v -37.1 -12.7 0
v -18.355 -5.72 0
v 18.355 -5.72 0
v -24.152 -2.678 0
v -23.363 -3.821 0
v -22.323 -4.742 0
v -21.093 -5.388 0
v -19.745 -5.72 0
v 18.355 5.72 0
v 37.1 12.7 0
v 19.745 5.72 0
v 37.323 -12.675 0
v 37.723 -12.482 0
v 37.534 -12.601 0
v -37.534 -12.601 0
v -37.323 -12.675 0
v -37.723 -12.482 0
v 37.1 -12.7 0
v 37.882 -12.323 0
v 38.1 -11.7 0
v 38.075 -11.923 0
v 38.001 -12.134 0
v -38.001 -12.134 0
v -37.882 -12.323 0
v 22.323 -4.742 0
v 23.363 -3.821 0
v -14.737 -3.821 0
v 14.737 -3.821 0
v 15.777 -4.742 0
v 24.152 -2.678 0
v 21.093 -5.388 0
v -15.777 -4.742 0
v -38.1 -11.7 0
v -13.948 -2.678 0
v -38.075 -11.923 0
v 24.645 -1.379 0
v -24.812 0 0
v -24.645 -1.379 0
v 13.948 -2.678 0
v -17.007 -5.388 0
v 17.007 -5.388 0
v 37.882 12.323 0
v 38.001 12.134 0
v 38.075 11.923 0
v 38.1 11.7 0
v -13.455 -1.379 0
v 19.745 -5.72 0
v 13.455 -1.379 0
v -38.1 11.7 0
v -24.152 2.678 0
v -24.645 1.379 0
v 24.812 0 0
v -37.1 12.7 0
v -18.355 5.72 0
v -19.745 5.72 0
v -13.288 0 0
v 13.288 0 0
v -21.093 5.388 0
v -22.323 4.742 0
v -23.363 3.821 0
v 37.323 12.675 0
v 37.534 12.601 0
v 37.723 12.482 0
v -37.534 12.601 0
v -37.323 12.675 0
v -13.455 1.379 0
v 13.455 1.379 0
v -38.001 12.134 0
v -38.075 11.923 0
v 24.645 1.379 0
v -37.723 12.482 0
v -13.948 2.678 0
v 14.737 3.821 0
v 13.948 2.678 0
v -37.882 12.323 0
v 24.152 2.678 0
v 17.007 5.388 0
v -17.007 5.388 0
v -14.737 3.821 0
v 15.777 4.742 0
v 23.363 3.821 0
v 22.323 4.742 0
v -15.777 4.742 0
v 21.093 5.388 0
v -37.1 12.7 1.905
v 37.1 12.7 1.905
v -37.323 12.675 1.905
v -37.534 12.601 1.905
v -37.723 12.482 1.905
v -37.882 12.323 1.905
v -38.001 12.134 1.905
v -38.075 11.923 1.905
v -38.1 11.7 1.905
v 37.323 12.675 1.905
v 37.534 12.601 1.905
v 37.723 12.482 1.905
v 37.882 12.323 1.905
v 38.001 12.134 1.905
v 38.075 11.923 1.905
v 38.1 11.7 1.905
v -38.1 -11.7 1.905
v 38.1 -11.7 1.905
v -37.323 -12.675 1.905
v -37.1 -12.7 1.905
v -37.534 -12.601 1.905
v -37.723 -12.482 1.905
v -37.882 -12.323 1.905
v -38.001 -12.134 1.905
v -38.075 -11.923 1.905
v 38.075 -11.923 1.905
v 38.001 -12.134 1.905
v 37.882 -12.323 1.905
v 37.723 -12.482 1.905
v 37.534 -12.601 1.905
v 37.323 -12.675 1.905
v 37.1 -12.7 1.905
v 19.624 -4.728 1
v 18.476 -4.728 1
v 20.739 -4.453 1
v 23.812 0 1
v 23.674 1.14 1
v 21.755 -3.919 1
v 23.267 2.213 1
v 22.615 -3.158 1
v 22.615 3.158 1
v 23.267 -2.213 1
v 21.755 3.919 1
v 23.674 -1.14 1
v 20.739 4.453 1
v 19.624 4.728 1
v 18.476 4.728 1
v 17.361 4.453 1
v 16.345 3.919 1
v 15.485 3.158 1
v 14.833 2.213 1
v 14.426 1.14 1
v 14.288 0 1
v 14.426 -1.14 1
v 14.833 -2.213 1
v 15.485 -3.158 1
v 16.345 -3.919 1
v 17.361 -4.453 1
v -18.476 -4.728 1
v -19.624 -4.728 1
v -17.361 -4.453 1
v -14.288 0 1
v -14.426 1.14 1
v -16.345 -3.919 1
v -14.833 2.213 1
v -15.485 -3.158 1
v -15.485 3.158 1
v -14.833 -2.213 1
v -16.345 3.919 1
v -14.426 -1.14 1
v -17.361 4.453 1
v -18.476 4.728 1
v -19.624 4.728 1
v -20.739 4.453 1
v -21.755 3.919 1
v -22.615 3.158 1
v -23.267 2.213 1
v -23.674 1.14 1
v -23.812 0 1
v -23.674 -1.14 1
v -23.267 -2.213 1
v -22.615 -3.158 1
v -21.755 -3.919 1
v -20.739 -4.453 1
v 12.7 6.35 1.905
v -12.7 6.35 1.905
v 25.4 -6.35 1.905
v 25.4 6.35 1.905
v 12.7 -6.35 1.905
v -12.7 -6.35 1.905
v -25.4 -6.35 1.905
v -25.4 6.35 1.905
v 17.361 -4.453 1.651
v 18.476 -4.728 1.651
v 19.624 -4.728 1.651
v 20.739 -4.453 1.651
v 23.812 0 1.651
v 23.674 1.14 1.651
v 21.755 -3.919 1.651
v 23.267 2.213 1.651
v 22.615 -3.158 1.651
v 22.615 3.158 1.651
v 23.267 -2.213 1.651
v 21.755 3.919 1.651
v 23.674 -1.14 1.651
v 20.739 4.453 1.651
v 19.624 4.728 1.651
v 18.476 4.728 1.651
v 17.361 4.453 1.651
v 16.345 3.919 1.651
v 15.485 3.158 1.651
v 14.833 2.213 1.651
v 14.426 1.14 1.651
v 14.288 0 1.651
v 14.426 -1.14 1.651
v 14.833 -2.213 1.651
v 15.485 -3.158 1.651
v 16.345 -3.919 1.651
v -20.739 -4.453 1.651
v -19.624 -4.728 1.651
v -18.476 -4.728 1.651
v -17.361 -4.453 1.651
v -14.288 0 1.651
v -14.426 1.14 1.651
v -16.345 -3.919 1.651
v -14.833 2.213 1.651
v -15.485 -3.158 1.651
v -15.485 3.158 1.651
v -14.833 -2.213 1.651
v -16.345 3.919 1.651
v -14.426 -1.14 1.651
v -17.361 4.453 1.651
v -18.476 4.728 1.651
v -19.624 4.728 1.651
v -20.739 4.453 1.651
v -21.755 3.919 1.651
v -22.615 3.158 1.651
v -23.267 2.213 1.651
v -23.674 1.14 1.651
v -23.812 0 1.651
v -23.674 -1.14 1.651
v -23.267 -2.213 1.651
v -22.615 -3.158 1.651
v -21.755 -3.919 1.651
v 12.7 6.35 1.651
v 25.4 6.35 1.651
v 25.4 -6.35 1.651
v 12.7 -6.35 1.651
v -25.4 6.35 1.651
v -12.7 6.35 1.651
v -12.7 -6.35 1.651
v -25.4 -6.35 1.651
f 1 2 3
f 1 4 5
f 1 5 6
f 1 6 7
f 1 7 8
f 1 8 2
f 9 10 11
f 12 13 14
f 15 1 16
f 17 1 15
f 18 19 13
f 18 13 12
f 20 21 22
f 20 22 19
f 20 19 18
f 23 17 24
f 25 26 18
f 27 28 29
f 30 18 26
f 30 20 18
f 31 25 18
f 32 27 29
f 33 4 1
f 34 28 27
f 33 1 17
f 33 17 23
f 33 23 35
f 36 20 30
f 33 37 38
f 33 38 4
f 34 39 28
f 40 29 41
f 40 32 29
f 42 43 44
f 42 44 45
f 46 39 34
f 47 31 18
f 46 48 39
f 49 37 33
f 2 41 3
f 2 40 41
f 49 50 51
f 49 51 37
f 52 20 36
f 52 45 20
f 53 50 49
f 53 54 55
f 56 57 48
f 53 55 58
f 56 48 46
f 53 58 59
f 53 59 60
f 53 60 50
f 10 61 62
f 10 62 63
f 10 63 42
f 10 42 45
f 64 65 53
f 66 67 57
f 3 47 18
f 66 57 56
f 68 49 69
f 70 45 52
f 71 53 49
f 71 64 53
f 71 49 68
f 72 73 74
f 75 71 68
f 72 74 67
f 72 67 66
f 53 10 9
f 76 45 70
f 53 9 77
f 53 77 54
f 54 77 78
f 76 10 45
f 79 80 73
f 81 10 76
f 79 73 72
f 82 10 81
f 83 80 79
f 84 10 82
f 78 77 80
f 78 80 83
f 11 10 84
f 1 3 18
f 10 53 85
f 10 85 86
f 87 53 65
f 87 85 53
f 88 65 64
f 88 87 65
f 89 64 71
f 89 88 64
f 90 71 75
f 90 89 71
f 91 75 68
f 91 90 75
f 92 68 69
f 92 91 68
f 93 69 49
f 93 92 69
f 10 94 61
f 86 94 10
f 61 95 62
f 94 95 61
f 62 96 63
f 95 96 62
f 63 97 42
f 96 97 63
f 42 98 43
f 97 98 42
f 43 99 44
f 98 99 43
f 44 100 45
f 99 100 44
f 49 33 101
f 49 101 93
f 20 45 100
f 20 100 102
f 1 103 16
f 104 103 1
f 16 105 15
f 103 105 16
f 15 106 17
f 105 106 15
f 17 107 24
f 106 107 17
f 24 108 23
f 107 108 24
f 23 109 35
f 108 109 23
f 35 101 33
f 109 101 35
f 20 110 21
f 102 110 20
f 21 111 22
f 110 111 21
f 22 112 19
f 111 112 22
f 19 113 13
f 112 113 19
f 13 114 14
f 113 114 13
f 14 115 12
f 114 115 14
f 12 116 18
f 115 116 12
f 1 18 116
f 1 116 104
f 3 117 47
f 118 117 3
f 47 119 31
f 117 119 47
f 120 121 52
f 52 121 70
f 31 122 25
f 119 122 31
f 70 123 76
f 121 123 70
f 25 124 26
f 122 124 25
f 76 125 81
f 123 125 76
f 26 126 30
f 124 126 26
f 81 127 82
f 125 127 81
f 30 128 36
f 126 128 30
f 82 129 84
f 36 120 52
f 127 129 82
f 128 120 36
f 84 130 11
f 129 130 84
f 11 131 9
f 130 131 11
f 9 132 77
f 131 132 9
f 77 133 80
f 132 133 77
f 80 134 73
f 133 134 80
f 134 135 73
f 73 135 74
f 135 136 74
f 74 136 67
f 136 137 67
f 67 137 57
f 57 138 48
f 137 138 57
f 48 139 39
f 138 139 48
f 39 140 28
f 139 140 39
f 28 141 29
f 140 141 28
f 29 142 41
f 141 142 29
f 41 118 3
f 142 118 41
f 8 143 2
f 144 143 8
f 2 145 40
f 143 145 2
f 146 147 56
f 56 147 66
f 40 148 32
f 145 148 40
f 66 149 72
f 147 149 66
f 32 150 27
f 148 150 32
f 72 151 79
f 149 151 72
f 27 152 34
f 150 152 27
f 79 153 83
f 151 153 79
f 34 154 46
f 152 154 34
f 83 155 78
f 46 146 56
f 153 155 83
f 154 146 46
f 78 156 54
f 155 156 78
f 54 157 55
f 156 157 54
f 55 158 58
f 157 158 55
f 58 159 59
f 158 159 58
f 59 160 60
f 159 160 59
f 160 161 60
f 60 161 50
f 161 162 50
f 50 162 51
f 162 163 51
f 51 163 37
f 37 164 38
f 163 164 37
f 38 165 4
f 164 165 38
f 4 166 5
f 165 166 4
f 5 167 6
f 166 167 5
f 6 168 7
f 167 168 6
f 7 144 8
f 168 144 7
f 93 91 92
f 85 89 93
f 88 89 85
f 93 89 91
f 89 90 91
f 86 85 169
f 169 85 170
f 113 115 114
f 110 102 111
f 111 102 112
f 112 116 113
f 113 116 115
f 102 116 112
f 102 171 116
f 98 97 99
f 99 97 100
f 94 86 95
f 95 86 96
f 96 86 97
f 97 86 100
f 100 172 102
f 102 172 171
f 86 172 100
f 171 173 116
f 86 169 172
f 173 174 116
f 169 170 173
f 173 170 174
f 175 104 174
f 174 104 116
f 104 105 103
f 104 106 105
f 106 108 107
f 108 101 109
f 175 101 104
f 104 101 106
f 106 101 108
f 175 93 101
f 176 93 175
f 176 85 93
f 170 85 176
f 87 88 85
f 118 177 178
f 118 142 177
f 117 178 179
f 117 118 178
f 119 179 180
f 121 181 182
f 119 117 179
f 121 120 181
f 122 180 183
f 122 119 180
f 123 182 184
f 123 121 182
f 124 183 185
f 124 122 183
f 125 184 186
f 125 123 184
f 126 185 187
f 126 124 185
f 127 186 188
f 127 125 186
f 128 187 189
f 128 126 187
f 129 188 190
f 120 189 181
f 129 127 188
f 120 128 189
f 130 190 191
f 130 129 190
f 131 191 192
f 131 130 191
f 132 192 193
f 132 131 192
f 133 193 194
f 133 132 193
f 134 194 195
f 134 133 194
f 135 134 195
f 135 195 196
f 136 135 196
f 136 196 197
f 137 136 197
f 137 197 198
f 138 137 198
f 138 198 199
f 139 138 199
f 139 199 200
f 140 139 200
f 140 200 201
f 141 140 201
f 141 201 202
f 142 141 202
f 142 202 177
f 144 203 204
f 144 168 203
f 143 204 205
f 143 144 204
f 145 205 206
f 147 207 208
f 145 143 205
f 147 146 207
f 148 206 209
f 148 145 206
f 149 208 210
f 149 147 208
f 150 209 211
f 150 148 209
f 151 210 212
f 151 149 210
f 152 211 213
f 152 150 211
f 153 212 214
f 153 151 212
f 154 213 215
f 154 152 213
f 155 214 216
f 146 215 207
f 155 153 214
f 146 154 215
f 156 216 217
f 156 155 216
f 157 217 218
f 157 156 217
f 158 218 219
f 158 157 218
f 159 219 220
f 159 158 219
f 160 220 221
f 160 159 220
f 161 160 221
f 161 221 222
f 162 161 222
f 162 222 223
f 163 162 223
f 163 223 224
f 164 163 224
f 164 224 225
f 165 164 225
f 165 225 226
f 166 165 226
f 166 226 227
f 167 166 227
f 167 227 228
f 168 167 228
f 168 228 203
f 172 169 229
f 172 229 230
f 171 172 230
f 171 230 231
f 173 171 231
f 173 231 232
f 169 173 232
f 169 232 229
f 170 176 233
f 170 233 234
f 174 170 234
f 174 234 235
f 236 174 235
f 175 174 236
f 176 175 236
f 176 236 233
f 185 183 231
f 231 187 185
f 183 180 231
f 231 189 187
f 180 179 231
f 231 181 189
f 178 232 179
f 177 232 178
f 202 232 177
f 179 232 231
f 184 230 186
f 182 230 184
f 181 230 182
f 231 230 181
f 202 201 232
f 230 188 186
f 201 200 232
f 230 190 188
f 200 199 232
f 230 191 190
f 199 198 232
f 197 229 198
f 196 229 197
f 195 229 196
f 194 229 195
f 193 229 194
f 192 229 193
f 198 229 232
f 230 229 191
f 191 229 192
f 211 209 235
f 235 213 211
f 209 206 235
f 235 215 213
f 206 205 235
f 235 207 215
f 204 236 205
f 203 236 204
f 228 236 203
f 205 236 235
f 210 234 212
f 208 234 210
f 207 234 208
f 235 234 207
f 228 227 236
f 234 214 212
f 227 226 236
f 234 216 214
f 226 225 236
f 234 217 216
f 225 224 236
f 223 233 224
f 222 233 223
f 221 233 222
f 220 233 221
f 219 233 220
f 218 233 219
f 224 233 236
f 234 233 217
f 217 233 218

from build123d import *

# Parameters (mm, degrees)
SKETCH_W     = 76.2
SKETCH_H     = 25.4
SKETCH_R     = 4.7625
PAD_DEPTH    = 1.905
SKETCH001_W  = 12.7
SKETCH001_H  = 12.7
POCKET_DEPTH = 0.254
CHAMFER_SIZE = 1
FILLET_R     = 1


with BuildPart() as part:
    # Sketch → Pad (new body)
    with BuildSketch(Plane.XY):
        Rectangle(SKETCH_W, SKETCH_H)
        with Locations((-19.05, 0)):
            Circle(SKETCH_R, mode=Mode.SUBTRACT)
        with Locations((19.05, 0)):
            Circle(SKETCH_R, mode=Mode.SUBTRACT)
    extrude(amount=PAD_DEPTH)

    # Sketch001 → Pocket (cut)
    with BuildSketch(Plane.XY.offset(1.905)):
        with Locations((-19.05, 0)):
            Rectangle(SKETCH001_W, SKETCH001_H)
        with Locations((19.05, 0)):
            Rectangle(SKETCH001_W, SKETCH001_H)
    extrude(amount=-POCKET_DEPTH, mode=Mode.SUBTRACT)

    # Chamfer
    chamfer_edges = [part.edges().sort_by_distance(p)[0] for p in [
        (14.2875, 0, 0),
        (-23.8125, 0, 0),
    ]]
    chamfer(chamfer_edges, length=CHAMFER_SIZE)

    # Fillet
    fillet_edges = [part.edges().sort_by_distance(p)[0] for p in [
        (38.1, 12.7, 0.9525),
        (38.1, -12.7, 0.9525),
        (-38.1, -12.7, 0.9525),
        (-38.1, 12.7, 0.9525),
    ]]
    fillet(fillet_edges, radius=FILLET_R)


solid = part.part
